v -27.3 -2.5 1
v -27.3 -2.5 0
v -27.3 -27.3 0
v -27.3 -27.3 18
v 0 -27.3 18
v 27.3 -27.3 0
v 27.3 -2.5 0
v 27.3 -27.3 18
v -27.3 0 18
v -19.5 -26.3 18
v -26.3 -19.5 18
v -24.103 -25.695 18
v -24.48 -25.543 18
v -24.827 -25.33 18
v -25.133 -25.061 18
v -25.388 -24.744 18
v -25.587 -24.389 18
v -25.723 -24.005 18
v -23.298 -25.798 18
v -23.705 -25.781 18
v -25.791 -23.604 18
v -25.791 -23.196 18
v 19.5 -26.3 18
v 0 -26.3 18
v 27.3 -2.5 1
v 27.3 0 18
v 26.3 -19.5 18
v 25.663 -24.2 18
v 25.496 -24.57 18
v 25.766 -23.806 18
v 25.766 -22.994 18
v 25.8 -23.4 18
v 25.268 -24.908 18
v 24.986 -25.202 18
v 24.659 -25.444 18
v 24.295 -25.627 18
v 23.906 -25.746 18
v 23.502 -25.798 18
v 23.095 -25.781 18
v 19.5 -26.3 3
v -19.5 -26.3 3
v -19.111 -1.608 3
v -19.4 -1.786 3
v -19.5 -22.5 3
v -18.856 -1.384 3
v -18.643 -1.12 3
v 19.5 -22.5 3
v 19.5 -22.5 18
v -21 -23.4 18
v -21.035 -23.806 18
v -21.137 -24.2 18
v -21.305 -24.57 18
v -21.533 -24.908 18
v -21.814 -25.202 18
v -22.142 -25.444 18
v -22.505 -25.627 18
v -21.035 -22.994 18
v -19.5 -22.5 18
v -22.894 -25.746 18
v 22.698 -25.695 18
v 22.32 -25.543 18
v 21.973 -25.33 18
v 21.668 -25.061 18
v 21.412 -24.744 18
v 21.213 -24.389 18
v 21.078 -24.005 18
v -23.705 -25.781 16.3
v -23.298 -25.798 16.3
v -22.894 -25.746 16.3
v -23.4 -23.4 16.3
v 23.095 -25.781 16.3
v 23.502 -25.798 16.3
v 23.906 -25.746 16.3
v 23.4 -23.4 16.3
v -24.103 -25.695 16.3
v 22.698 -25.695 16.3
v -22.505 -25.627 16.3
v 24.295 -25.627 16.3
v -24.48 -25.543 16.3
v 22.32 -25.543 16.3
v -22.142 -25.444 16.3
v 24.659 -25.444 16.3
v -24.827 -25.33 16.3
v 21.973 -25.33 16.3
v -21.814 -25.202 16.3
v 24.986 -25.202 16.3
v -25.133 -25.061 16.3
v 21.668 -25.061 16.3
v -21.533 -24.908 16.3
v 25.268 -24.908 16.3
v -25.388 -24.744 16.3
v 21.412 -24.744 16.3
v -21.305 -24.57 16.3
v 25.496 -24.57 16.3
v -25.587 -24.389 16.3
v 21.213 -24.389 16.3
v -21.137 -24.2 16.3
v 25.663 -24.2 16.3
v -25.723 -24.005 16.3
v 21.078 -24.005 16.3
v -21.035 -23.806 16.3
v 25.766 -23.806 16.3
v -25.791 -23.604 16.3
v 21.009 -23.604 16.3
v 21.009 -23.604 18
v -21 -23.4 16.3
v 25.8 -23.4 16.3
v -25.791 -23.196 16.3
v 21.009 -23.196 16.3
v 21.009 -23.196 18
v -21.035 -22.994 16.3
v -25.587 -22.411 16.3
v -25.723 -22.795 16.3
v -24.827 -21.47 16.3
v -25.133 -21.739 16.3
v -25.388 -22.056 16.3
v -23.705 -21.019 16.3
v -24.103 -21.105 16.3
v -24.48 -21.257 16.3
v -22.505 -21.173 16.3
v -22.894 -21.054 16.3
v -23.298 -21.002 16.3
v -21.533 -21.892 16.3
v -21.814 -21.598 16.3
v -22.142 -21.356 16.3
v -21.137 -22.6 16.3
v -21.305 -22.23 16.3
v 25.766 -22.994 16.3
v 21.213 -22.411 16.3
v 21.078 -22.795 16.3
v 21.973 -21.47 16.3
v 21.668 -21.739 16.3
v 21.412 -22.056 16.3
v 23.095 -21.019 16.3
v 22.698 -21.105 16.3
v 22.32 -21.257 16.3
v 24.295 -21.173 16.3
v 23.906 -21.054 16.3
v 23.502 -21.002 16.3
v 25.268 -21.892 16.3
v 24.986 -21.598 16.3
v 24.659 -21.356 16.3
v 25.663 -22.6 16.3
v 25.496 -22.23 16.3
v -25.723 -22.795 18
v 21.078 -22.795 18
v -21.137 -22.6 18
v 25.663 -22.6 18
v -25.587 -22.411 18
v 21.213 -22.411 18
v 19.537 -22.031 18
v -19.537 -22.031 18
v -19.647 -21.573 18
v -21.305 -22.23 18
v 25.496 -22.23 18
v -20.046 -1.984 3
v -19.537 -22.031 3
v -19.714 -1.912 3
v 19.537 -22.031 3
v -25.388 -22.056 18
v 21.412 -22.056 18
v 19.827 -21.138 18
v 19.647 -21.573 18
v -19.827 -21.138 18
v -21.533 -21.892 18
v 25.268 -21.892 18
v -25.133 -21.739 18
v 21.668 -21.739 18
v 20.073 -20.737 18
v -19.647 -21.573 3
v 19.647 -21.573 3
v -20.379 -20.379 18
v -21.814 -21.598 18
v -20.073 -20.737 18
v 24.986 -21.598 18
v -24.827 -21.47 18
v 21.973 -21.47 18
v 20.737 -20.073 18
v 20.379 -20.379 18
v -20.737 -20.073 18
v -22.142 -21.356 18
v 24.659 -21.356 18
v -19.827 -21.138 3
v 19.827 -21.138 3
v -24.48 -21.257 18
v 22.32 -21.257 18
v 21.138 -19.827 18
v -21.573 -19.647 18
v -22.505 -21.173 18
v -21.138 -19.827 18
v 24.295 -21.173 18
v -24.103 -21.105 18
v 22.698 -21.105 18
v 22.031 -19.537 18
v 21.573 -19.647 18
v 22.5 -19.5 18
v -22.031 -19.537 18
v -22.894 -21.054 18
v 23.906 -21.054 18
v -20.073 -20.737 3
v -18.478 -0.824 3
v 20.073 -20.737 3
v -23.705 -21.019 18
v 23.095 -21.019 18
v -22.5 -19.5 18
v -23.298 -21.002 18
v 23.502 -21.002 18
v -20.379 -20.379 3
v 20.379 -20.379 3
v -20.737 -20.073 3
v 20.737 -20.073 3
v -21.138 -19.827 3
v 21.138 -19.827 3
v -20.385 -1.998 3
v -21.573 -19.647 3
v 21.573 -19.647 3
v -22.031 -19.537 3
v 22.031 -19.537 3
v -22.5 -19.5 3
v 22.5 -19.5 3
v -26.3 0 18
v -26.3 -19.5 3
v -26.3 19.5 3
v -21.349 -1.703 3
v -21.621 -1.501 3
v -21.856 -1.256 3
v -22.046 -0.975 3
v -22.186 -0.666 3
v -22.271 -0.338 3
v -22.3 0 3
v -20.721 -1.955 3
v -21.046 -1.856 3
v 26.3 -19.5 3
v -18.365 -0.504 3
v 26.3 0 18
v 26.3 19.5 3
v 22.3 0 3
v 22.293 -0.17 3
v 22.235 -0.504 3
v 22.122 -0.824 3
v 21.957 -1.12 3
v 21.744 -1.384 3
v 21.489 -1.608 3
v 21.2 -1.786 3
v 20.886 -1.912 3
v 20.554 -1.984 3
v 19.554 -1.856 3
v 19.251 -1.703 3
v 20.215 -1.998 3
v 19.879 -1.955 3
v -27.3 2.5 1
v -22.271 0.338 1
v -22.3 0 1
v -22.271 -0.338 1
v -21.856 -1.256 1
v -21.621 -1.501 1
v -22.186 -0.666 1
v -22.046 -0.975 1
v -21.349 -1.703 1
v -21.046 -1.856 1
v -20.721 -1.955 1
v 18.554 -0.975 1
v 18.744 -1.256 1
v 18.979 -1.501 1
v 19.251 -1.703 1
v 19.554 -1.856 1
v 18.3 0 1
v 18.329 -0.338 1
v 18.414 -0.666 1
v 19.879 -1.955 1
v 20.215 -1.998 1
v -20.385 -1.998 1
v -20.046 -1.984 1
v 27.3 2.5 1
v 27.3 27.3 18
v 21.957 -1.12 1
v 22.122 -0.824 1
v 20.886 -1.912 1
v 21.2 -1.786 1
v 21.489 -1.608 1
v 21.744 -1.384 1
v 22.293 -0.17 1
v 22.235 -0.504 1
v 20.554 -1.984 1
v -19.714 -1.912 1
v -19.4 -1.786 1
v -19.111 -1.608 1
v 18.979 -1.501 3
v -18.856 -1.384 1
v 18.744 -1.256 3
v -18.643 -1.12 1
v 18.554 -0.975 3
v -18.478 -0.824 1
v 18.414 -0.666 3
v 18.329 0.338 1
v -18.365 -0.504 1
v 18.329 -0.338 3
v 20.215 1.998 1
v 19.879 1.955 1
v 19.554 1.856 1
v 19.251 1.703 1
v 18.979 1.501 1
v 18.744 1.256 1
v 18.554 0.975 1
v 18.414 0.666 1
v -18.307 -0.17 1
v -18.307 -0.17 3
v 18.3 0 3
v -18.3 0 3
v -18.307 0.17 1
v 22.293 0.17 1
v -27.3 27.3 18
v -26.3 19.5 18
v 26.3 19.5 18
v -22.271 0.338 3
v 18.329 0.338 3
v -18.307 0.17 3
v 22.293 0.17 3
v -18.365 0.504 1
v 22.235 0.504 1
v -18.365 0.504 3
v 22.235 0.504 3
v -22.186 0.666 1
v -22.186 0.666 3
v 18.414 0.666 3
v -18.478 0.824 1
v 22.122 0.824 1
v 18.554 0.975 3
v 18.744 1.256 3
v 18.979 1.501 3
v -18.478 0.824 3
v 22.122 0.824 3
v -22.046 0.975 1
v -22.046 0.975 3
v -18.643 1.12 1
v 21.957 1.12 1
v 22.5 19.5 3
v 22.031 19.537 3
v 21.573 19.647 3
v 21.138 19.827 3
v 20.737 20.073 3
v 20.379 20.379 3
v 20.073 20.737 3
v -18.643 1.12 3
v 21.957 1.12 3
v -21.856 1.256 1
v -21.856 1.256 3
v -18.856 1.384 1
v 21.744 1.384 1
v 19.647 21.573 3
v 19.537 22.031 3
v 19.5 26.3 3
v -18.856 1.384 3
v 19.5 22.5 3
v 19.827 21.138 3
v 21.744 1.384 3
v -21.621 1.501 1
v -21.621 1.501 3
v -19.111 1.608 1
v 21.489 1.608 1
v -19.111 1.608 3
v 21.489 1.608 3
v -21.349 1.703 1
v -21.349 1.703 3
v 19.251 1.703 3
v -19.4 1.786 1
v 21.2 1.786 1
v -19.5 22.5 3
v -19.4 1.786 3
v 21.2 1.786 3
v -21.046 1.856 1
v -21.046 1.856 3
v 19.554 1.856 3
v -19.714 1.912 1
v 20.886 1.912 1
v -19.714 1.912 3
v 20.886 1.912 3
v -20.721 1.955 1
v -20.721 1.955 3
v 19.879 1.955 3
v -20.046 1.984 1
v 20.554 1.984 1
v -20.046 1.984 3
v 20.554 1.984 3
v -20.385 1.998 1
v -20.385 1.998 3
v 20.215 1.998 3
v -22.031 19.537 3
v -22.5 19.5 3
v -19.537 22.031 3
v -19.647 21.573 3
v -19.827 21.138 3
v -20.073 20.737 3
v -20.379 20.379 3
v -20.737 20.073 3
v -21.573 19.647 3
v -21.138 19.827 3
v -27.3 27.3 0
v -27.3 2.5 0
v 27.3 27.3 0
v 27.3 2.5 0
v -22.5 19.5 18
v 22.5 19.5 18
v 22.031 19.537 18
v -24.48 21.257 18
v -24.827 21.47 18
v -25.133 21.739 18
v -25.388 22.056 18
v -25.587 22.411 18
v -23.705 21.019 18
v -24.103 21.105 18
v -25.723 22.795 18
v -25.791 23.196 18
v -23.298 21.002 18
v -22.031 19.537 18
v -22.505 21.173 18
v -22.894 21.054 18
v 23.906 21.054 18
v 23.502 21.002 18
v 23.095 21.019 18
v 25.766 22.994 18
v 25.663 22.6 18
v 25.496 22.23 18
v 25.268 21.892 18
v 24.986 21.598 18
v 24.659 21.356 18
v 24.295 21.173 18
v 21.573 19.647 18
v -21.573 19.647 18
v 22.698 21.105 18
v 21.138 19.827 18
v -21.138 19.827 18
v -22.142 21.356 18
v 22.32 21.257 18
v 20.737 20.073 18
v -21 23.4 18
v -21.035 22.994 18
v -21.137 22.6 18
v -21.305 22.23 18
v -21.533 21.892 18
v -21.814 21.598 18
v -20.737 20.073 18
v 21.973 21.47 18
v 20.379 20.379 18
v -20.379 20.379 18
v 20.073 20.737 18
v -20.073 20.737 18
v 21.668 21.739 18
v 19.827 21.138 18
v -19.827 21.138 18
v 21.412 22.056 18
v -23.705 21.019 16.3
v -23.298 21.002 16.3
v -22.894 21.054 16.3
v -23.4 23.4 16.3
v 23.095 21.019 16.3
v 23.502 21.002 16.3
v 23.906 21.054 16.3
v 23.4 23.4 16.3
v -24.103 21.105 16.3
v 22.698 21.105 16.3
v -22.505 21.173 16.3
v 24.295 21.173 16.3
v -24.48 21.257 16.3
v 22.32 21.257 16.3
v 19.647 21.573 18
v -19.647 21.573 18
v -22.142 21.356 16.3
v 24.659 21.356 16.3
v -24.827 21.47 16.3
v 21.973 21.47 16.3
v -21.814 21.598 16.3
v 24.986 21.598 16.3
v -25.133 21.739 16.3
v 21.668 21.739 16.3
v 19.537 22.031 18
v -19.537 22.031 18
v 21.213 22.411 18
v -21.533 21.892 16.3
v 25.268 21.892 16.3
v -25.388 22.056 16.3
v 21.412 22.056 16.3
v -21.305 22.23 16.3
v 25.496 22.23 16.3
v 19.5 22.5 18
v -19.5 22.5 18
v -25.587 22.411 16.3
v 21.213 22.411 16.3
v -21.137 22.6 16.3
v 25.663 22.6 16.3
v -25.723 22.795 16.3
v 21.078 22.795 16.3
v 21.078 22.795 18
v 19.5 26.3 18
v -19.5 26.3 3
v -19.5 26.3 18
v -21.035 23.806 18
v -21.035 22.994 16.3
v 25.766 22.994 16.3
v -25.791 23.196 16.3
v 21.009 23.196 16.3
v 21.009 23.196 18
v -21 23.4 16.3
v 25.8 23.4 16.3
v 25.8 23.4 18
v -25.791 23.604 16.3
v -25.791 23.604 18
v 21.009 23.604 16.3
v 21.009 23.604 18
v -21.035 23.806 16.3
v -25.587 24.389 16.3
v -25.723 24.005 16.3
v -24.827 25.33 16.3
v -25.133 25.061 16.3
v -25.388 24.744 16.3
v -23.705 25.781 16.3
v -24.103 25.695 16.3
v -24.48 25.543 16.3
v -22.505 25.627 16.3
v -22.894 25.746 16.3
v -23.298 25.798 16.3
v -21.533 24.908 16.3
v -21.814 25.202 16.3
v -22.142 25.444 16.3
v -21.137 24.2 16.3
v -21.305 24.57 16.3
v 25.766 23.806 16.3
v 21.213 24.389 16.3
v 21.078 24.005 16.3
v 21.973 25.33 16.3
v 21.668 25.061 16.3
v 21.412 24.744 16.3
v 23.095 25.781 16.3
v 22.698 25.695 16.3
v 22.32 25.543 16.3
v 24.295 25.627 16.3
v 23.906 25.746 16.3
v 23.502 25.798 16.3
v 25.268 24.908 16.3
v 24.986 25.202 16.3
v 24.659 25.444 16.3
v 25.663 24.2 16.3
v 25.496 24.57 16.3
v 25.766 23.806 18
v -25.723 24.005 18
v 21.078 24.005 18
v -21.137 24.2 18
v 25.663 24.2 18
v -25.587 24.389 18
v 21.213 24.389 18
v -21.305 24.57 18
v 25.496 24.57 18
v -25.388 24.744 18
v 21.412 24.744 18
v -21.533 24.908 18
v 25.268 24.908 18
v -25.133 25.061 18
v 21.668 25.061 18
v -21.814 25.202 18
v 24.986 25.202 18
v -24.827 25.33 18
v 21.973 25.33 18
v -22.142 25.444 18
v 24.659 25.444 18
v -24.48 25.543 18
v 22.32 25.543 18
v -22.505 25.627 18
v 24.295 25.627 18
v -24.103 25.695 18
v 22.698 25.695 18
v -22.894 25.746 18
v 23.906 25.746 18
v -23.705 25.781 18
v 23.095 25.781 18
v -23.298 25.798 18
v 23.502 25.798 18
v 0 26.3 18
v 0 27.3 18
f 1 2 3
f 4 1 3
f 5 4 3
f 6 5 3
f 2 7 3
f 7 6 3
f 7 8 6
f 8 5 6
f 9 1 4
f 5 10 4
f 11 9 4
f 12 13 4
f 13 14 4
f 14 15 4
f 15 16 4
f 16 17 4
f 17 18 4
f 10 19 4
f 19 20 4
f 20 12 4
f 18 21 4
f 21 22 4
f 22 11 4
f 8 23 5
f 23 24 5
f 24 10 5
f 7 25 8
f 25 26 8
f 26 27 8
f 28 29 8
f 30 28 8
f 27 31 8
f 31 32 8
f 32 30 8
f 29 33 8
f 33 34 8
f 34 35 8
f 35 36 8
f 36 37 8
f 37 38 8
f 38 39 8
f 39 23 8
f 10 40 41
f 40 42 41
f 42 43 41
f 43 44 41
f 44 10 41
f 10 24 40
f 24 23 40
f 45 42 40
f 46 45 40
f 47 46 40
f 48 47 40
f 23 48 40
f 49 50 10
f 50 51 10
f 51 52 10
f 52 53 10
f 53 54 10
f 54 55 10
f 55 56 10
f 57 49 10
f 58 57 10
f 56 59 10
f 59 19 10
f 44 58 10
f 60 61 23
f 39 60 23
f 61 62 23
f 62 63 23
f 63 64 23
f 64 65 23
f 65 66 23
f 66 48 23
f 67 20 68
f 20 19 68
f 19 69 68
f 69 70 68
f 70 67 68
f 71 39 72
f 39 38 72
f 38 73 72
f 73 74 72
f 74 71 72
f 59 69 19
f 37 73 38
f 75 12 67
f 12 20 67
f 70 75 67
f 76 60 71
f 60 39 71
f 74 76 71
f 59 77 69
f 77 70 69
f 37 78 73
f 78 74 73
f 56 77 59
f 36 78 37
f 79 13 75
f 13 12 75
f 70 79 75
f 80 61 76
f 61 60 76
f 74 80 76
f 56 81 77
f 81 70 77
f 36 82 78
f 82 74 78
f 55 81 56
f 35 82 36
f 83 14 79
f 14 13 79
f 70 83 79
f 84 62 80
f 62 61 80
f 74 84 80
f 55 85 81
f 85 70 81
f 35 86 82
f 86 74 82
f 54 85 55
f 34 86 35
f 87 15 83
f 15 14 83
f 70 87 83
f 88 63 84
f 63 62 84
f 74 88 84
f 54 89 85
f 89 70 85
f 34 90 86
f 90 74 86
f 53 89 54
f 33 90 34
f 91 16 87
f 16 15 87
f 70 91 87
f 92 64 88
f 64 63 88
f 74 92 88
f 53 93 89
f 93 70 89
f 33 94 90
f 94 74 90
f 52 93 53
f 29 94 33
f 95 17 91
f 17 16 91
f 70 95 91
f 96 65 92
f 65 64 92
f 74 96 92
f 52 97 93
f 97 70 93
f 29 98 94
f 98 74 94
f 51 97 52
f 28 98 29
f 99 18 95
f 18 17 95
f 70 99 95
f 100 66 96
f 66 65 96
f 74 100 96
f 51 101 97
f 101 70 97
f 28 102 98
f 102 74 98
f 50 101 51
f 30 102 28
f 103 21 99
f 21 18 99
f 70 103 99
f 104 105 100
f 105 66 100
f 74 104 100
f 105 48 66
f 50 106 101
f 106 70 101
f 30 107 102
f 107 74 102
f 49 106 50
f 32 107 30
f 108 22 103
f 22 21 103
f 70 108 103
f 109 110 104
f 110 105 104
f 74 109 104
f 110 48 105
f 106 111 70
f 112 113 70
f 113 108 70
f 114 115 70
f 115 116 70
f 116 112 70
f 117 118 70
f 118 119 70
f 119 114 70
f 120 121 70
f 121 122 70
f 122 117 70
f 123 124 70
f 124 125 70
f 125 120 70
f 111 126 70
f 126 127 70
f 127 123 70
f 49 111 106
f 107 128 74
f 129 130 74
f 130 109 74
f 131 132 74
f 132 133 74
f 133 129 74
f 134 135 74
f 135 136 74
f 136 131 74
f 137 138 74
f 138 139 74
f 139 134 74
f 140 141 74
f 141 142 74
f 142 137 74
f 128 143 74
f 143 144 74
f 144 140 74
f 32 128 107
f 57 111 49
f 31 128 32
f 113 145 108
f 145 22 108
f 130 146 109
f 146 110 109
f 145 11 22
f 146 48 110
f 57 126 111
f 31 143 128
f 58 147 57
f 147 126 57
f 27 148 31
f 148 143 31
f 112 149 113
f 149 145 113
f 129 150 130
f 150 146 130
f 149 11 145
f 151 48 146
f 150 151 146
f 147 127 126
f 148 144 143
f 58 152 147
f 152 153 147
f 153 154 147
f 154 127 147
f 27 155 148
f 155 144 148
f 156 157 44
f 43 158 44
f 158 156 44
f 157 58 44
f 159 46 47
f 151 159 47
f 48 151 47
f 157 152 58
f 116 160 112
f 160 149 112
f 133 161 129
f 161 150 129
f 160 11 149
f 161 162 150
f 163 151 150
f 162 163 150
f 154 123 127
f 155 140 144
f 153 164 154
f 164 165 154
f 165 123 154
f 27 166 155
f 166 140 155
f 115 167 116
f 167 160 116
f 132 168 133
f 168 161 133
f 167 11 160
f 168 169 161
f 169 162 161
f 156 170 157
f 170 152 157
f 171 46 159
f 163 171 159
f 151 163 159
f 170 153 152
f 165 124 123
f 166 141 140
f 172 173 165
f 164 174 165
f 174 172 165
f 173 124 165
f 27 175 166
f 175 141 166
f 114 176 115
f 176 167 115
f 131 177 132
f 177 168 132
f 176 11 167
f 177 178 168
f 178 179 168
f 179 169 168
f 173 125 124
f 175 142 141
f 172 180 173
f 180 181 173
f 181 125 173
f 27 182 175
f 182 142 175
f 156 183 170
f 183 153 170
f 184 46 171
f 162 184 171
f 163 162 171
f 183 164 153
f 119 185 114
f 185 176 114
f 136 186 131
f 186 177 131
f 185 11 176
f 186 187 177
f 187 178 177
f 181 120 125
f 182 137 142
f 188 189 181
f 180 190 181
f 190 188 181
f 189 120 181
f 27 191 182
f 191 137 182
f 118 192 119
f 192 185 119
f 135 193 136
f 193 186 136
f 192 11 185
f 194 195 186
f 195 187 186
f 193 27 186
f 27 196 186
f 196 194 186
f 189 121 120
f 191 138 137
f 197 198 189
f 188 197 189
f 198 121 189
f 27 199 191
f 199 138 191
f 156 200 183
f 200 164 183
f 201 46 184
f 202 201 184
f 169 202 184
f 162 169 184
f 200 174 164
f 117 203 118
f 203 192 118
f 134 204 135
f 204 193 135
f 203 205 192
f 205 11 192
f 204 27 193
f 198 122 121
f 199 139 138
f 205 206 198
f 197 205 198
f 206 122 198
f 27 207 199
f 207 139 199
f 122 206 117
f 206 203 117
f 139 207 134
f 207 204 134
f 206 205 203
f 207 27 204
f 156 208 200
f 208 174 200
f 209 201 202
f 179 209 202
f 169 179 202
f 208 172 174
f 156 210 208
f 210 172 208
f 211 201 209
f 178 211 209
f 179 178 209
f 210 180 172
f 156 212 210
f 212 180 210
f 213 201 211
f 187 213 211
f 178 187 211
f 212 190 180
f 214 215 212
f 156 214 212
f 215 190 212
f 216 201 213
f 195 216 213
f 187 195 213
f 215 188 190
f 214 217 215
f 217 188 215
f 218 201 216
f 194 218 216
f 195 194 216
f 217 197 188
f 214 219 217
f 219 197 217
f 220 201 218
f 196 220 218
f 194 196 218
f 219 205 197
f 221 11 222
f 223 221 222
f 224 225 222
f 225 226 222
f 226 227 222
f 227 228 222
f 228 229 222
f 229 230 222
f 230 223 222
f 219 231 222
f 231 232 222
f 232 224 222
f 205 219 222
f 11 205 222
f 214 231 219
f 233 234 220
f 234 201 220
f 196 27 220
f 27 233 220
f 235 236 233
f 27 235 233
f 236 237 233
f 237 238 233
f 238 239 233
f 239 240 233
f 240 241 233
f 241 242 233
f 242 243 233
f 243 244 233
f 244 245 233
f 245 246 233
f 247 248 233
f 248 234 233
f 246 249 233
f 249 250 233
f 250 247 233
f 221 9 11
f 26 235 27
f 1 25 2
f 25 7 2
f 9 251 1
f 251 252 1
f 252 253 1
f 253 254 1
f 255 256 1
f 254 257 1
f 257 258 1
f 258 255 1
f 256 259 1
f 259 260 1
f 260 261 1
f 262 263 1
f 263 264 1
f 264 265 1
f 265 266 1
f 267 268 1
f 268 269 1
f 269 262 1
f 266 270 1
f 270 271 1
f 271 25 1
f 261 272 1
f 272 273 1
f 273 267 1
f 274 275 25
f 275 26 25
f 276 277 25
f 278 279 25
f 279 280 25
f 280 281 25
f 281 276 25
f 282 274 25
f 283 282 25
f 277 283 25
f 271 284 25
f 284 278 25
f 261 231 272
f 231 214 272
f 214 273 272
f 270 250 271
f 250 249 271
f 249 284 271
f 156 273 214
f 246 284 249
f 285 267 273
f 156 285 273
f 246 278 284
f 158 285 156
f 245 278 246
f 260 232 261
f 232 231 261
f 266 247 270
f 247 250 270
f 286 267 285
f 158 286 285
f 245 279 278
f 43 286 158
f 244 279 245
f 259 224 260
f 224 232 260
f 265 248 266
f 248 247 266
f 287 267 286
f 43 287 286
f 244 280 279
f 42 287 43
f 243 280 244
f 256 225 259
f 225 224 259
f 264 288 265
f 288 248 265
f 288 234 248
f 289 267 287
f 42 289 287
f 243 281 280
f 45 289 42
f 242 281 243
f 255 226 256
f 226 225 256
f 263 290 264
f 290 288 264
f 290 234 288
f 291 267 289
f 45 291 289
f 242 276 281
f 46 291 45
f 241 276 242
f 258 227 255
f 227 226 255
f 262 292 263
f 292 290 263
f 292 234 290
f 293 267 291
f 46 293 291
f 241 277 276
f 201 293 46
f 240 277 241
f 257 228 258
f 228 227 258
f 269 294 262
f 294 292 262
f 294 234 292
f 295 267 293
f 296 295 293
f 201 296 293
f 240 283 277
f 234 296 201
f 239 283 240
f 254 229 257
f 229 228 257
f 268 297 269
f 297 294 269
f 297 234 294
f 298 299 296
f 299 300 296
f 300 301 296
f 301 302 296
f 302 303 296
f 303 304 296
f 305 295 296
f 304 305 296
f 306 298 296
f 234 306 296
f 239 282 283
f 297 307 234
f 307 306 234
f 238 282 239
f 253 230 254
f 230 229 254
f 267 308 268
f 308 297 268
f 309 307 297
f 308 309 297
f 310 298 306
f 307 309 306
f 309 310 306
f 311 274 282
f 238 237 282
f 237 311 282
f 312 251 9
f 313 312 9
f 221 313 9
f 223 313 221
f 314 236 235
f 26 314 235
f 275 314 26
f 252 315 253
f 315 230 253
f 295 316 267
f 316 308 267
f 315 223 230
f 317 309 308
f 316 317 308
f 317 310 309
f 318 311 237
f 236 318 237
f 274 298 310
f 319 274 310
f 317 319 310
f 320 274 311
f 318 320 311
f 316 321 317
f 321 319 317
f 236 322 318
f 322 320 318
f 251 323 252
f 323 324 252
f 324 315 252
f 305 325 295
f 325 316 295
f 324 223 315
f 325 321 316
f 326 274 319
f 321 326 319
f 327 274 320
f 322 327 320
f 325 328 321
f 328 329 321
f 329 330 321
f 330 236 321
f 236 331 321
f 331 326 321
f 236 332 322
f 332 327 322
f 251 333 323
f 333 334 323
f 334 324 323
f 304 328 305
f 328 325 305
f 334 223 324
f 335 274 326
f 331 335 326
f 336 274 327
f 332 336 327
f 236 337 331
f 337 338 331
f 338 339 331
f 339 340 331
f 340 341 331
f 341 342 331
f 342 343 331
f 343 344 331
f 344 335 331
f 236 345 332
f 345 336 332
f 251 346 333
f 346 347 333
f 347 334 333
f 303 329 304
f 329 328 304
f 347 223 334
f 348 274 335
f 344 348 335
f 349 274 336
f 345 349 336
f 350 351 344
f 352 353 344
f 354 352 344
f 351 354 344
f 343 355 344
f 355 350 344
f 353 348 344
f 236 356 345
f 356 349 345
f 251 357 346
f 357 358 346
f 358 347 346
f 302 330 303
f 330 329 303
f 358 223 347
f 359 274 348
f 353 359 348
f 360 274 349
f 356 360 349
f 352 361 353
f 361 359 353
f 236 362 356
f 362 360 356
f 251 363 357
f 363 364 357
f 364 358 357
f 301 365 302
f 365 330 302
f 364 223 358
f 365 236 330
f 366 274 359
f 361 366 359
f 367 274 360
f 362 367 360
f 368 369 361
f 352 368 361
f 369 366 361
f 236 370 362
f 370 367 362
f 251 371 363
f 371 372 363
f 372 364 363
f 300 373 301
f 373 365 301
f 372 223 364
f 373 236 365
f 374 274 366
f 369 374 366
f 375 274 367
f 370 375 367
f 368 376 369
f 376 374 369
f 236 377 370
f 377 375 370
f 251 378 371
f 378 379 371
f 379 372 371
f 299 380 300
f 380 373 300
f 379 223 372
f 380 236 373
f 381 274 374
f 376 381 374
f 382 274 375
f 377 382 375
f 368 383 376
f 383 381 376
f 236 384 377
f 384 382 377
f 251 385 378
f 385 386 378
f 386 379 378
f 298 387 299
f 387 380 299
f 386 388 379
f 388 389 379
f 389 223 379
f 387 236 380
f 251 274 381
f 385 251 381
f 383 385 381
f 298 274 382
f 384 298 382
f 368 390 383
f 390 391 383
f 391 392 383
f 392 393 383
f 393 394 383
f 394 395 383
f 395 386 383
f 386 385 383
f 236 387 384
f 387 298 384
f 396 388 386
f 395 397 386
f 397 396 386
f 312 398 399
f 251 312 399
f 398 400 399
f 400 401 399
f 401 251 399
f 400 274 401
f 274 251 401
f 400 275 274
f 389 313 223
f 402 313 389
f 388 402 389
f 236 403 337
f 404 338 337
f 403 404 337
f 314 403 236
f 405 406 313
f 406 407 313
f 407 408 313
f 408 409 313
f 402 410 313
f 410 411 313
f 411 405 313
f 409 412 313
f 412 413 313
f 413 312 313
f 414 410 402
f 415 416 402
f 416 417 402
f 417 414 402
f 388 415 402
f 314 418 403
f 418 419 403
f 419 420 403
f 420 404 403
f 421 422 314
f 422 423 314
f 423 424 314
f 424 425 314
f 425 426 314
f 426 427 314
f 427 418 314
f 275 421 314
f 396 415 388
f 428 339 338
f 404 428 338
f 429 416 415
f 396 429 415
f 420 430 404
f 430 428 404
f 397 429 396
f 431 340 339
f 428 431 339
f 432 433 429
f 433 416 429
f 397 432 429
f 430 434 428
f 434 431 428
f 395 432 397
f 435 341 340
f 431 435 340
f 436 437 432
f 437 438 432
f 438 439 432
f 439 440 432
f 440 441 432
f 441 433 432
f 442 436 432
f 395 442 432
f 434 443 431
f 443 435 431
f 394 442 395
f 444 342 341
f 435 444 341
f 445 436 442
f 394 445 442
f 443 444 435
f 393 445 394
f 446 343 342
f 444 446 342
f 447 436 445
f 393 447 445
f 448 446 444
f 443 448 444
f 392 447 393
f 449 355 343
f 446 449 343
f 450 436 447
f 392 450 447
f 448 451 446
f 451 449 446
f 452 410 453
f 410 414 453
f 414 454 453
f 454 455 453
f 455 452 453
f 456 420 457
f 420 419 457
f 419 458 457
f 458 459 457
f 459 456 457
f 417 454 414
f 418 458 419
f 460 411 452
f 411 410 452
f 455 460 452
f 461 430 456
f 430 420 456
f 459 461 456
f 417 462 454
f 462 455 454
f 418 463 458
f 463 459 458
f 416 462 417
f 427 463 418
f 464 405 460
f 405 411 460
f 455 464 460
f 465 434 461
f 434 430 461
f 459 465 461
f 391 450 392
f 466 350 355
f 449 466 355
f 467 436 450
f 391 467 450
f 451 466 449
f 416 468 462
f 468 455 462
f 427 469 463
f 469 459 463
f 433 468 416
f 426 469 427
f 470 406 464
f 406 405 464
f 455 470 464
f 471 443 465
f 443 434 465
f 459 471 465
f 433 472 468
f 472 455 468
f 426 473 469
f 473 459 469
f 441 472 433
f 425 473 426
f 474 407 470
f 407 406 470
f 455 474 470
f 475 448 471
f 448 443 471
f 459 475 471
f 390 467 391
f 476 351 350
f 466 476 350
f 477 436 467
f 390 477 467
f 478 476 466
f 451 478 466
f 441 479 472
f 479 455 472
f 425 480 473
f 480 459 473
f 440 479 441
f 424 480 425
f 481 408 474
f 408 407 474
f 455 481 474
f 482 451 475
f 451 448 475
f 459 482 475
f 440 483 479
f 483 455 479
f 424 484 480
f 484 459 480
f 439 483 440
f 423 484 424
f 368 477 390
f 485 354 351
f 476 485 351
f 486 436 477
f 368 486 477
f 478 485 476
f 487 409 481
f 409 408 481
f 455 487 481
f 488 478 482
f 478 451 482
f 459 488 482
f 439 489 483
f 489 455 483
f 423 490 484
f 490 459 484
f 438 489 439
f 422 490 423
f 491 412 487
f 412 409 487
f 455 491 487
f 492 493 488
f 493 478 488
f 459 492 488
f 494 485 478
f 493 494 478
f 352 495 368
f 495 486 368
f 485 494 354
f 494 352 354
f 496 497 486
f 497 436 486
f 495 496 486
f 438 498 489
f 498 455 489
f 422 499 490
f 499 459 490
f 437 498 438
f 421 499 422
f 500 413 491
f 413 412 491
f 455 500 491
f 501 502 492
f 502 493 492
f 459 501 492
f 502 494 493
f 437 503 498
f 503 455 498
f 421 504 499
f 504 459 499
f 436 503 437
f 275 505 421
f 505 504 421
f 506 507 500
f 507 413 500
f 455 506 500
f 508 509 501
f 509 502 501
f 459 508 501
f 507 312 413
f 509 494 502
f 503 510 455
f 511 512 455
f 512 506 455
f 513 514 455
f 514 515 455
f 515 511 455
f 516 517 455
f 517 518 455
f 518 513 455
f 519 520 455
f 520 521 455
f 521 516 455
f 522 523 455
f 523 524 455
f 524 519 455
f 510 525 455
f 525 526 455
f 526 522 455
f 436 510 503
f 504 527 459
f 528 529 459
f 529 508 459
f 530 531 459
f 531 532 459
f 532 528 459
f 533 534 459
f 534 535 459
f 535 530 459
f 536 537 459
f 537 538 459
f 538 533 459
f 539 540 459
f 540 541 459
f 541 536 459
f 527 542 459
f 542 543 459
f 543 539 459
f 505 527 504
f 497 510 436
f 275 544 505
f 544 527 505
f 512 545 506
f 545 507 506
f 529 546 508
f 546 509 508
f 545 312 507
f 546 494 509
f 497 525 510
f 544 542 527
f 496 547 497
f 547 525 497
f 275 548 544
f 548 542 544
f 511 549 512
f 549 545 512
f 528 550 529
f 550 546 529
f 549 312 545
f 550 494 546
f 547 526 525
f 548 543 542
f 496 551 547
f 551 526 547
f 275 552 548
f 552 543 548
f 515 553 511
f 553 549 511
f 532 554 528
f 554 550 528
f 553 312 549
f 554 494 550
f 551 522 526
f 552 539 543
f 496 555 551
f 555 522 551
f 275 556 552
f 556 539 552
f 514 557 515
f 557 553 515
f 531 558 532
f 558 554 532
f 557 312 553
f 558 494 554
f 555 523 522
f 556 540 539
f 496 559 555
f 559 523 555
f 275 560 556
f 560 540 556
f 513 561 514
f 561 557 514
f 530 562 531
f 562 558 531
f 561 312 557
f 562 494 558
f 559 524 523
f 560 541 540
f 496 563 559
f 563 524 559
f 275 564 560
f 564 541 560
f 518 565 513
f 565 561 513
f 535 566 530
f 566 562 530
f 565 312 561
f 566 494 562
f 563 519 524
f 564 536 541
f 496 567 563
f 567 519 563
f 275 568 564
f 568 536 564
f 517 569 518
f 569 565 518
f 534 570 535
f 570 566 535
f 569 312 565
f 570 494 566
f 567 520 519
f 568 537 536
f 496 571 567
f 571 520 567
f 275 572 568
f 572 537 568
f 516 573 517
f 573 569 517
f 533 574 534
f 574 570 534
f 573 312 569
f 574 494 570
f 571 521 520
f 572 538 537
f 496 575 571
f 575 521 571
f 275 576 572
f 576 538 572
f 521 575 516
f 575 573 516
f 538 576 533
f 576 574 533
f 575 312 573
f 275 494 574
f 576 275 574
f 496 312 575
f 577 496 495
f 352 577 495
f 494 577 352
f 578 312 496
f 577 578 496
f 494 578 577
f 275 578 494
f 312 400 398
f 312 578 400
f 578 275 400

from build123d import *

# Parameters (mm, degrees)
SKICA1_W                 = 54.6
SKICA1_H                 = 54.6
P_IDAT_VYSUNUT_M2_DEPTH  = 3
SKICA5_W                 = 54.6
SKICA5_H                 = 5
ODEBRAT_VYSUNUT_M3_DEPTH = 1
SKICA14_W                = 52.6
SKICA14_H                = 1
P_IDAT_VYSUNUT_M9_DEPTH  = 15
SKICA17_R                = 2
ODEBRAT_VYSUNUT_M8_DEPTH = 4
SKICA19_W                = 7.8
SKICA19_H                = 7.8
P_IDAT_VYSUNUT_M10_DEPTH = 18
SKICA20_R                = 2.4
ODEBRAT_VYSUNUT_M9_DEPTH = 1.7
ZAOBLIT1_R               = 3


with BuildPart() as part:
    # Skica1 → Přidat vysunutím2 (new body)
    with BuildSketch(Plane.XY):
        Rectangle(SKICA1_W, SKICA1_H)
    extrude(amount=P_IDAT_VYSUNUT_M2_DEPTH)

    # Skica5 → Odebrat vysunutím3 (cut)
    with BuildSketch(Plane(origin=(0, 0, 0), x_dir=(-1, 0, 0), z_dir=(0, 0, -1))):
        Rectangle(SKICA5_W, SKICA5_H)
    extrude(amount=-ODEBRAT_VYSUNUT_M3_DEPTH, mode=Mode.SUBTRACT)

    # Skica14 → Přidat vysunutím9 (add)
    with BuildSketch(Plane.XY.offset(3)):
        Polygon((27.3, 27.3), (-27.3, 27.3), (-27.3, -27.3), (-26.3, -27.3), (-26.3, -26.3), (-26.3, 26.3), (26.3, 26.3), (26.3, -26.3), (26.3, -27.3), (27.3, -27.3), align=None)
        with Locations((0, -26.8)):
            Rectangle(SKICA14_W, SKICA14_H)
    extrude(amount=P_IDAT_VYSUNUT_M9_DEPTH)

    # Skica17 → Odebrat vysunutím8 (cut)
    with BuildSketch(Plane(origin=(0, 0, 1), x_dir=(-1, 0, 0), z_dir=(0, 0, -1))):
        with Locations((-20.3, 0)):
            Circle(SKICA17_R)
        with Locations((20.3, 0)):
            Circle(SKICA17_R)
    extrude(amount=-ODEBRAT_VYSUNUT_M8_DEPTH, mode=Mode.SUBTRACT)

    # Skica19 → Přidat vysunutím10 (add)
    with BuildSketch(Plane(origin=(0, 0, 0), x_dir=(-1, 0, 0), z_dir=(0, 0, -1))):
        with Locations((-23.4, 23.4)):
            Rectangle(SKICA19_W, SKICA19_H)
        with Locations((23.4, 23.4)):
            Rectangle(SKICA19_W, SKICA19_H)
        with Locations((-23.4, -23.4)):
            Rectangle(SKICA19_W, SKICA19_H)
        with Locations((23.4, -23.4)):
            Rectangle(SKICA19_W, SKICA19_H)
    extrude(amount=-P_IDAT_VYSUNUT_M10_DEPTH)

    # Skica20 → Odebrat vysunutím9 (cut)
    with BuildSketch(Plane.XY.offset(18)):
        with Locations((-23.4, -23.4)):
            Circle(SKICA20_R)
        with Locations((-23.4, 23.4)):
            Circle(SKICA20_R)
        with Locations((23.400280565, 23.4)):
            Circle(SKICA20_R)
        with Locations((23.400280565, -23.4)):
            Circle(SKICA20_R)
    extrude(amount=-ODEBRAT_VYSUNUT_M9_DEPTH, mode=Mode.SUBTRACT)

    # Zaoblit1
    zaoblit1_edges = [part.edges().sort_by_distance(p)[0] for p in [
        (19.5, -19.5, 10.5),
        (-19.5, -19.5, 10.5),
        (19.5, 19.5, 10.5),
        (-19.5, 19.5, 10.5),
    ]]
    fillet(zaoblit1_edges, radius=ZAOBLIT1_R)


solid = part.part
